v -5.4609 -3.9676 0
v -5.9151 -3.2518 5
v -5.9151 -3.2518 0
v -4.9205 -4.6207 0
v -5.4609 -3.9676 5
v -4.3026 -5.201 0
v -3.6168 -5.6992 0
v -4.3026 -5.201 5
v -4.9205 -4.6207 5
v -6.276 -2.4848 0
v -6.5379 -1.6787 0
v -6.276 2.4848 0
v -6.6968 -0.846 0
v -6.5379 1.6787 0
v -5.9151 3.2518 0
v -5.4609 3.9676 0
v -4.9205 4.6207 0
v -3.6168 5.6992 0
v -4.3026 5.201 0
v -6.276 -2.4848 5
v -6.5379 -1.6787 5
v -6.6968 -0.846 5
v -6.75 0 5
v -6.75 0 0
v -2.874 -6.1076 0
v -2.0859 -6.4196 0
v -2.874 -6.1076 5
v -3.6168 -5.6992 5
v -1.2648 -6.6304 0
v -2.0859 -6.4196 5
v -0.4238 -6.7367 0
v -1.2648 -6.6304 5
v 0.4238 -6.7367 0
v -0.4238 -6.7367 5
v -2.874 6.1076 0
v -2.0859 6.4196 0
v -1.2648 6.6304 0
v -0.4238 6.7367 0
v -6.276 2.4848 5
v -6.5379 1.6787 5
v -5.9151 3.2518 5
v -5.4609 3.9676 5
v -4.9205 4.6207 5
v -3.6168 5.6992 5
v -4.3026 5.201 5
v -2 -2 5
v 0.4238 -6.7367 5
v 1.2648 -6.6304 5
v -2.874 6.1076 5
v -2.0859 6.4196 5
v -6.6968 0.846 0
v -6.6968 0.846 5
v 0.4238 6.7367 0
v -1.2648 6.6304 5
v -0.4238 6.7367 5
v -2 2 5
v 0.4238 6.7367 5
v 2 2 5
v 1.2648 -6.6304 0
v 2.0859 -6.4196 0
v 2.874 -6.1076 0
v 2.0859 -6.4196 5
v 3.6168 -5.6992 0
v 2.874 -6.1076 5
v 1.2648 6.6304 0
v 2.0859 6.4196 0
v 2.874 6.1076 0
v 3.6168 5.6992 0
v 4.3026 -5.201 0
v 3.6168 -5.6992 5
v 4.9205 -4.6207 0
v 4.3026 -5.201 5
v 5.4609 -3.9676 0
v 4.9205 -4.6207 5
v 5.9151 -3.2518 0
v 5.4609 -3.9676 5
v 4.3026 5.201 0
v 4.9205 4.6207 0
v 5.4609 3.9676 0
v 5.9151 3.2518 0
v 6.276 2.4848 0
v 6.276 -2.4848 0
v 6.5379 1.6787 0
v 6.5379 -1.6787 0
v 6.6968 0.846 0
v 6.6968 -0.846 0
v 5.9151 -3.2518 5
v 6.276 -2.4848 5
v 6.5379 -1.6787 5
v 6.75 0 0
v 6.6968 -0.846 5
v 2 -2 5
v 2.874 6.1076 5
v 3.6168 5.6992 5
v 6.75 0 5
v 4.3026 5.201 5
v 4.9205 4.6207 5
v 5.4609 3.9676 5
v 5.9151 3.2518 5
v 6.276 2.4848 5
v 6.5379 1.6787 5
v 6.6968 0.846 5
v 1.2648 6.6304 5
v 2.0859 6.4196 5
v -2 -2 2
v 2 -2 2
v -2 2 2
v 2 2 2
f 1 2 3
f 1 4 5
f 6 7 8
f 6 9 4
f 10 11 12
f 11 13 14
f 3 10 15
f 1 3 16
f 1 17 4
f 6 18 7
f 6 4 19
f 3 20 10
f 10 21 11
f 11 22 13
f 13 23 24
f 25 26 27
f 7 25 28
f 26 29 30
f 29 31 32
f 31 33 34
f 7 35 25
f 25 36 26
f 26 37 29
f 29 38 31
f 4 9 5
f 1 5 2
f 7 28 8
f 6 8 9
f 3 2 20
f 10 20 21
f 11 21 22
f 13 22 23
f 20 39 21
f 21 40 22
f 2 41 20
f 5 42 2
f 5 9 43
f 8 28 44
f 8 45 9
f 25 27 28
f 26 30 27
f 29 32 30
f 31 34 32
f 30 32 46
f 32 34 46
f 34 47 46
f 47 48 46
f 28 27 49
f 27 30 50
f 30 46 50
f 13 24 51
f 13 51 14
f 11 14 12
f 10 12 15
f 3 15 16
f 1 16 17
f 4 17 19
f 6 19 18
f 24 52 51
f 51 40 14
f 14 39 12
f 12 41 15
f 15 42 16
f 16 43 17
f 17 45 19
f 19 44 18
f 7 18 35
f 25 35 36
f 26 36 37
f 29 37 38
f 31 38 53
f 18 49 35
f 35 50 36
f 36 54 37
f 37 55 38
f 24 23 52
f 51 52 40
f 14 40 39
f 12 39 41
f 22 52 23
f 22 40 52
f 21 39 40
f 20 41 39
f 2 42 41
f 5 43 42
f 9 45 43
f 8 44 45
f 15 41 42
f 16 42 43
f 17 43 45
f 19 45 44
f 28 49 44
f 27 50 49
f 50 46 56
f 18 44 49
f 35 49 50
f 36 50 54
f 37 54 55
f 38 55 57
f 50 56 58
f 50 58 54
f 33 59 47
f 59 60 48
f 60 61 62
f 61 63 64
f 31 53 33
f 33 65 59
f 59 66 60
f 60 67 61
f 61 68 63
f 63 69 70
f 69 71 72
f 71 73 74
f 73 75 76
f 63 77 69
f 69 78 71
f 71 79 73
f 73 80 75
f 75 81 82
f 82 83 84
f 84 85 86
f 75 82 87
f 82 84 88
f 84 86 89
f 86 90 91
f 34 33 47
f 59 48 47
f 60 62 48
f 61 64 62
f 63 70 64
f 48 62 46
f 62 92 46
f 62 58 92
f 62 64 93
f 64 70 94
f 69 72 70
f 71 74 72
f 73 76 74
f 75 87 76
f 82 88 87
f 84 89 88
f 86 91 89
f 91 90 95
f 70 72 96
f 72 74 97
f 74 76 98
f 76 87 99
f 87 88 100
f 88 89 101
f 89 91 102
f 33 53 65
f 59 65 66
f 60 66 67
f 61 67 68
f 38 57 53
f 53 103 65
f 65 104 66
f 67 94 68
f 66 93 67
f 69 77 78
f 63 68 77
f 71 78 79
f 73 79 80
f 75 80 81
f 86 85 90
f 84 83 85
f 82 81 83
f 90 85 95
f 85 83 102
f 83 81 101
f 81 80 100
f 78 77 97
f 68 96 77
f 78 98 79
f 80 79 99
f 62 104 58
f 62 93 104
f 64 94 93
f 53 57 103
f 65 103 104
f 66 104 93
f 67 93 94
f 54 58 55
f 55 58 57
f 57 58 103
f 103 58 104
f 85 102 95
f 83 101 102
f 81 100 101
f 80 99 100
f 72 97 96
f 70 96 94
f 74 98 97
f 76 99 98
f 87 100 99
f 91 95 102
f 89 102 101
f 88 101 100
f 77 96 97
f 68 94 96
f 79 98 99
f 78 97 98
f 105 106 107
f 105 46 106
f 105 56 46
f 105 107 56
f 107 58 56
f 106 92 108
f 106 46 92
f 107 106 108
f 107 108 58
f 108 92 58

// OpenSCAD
HEIGHT = 5;
ABOVE_BUTTON_HEIGHT = 2;
DIAM = 13.5;


$fn = 50;

module cap() {
  
    difference() {
        linear_extrude(HEIGHT) circle(DIAM/2);
        translate([0, 0, ABOVE_BUTTON_HEIGHT])
            linear_extrude(ABOVE_BUTTON_HEIGHT + HEIGHT) square(4, center=true);
    }
}


cap();
